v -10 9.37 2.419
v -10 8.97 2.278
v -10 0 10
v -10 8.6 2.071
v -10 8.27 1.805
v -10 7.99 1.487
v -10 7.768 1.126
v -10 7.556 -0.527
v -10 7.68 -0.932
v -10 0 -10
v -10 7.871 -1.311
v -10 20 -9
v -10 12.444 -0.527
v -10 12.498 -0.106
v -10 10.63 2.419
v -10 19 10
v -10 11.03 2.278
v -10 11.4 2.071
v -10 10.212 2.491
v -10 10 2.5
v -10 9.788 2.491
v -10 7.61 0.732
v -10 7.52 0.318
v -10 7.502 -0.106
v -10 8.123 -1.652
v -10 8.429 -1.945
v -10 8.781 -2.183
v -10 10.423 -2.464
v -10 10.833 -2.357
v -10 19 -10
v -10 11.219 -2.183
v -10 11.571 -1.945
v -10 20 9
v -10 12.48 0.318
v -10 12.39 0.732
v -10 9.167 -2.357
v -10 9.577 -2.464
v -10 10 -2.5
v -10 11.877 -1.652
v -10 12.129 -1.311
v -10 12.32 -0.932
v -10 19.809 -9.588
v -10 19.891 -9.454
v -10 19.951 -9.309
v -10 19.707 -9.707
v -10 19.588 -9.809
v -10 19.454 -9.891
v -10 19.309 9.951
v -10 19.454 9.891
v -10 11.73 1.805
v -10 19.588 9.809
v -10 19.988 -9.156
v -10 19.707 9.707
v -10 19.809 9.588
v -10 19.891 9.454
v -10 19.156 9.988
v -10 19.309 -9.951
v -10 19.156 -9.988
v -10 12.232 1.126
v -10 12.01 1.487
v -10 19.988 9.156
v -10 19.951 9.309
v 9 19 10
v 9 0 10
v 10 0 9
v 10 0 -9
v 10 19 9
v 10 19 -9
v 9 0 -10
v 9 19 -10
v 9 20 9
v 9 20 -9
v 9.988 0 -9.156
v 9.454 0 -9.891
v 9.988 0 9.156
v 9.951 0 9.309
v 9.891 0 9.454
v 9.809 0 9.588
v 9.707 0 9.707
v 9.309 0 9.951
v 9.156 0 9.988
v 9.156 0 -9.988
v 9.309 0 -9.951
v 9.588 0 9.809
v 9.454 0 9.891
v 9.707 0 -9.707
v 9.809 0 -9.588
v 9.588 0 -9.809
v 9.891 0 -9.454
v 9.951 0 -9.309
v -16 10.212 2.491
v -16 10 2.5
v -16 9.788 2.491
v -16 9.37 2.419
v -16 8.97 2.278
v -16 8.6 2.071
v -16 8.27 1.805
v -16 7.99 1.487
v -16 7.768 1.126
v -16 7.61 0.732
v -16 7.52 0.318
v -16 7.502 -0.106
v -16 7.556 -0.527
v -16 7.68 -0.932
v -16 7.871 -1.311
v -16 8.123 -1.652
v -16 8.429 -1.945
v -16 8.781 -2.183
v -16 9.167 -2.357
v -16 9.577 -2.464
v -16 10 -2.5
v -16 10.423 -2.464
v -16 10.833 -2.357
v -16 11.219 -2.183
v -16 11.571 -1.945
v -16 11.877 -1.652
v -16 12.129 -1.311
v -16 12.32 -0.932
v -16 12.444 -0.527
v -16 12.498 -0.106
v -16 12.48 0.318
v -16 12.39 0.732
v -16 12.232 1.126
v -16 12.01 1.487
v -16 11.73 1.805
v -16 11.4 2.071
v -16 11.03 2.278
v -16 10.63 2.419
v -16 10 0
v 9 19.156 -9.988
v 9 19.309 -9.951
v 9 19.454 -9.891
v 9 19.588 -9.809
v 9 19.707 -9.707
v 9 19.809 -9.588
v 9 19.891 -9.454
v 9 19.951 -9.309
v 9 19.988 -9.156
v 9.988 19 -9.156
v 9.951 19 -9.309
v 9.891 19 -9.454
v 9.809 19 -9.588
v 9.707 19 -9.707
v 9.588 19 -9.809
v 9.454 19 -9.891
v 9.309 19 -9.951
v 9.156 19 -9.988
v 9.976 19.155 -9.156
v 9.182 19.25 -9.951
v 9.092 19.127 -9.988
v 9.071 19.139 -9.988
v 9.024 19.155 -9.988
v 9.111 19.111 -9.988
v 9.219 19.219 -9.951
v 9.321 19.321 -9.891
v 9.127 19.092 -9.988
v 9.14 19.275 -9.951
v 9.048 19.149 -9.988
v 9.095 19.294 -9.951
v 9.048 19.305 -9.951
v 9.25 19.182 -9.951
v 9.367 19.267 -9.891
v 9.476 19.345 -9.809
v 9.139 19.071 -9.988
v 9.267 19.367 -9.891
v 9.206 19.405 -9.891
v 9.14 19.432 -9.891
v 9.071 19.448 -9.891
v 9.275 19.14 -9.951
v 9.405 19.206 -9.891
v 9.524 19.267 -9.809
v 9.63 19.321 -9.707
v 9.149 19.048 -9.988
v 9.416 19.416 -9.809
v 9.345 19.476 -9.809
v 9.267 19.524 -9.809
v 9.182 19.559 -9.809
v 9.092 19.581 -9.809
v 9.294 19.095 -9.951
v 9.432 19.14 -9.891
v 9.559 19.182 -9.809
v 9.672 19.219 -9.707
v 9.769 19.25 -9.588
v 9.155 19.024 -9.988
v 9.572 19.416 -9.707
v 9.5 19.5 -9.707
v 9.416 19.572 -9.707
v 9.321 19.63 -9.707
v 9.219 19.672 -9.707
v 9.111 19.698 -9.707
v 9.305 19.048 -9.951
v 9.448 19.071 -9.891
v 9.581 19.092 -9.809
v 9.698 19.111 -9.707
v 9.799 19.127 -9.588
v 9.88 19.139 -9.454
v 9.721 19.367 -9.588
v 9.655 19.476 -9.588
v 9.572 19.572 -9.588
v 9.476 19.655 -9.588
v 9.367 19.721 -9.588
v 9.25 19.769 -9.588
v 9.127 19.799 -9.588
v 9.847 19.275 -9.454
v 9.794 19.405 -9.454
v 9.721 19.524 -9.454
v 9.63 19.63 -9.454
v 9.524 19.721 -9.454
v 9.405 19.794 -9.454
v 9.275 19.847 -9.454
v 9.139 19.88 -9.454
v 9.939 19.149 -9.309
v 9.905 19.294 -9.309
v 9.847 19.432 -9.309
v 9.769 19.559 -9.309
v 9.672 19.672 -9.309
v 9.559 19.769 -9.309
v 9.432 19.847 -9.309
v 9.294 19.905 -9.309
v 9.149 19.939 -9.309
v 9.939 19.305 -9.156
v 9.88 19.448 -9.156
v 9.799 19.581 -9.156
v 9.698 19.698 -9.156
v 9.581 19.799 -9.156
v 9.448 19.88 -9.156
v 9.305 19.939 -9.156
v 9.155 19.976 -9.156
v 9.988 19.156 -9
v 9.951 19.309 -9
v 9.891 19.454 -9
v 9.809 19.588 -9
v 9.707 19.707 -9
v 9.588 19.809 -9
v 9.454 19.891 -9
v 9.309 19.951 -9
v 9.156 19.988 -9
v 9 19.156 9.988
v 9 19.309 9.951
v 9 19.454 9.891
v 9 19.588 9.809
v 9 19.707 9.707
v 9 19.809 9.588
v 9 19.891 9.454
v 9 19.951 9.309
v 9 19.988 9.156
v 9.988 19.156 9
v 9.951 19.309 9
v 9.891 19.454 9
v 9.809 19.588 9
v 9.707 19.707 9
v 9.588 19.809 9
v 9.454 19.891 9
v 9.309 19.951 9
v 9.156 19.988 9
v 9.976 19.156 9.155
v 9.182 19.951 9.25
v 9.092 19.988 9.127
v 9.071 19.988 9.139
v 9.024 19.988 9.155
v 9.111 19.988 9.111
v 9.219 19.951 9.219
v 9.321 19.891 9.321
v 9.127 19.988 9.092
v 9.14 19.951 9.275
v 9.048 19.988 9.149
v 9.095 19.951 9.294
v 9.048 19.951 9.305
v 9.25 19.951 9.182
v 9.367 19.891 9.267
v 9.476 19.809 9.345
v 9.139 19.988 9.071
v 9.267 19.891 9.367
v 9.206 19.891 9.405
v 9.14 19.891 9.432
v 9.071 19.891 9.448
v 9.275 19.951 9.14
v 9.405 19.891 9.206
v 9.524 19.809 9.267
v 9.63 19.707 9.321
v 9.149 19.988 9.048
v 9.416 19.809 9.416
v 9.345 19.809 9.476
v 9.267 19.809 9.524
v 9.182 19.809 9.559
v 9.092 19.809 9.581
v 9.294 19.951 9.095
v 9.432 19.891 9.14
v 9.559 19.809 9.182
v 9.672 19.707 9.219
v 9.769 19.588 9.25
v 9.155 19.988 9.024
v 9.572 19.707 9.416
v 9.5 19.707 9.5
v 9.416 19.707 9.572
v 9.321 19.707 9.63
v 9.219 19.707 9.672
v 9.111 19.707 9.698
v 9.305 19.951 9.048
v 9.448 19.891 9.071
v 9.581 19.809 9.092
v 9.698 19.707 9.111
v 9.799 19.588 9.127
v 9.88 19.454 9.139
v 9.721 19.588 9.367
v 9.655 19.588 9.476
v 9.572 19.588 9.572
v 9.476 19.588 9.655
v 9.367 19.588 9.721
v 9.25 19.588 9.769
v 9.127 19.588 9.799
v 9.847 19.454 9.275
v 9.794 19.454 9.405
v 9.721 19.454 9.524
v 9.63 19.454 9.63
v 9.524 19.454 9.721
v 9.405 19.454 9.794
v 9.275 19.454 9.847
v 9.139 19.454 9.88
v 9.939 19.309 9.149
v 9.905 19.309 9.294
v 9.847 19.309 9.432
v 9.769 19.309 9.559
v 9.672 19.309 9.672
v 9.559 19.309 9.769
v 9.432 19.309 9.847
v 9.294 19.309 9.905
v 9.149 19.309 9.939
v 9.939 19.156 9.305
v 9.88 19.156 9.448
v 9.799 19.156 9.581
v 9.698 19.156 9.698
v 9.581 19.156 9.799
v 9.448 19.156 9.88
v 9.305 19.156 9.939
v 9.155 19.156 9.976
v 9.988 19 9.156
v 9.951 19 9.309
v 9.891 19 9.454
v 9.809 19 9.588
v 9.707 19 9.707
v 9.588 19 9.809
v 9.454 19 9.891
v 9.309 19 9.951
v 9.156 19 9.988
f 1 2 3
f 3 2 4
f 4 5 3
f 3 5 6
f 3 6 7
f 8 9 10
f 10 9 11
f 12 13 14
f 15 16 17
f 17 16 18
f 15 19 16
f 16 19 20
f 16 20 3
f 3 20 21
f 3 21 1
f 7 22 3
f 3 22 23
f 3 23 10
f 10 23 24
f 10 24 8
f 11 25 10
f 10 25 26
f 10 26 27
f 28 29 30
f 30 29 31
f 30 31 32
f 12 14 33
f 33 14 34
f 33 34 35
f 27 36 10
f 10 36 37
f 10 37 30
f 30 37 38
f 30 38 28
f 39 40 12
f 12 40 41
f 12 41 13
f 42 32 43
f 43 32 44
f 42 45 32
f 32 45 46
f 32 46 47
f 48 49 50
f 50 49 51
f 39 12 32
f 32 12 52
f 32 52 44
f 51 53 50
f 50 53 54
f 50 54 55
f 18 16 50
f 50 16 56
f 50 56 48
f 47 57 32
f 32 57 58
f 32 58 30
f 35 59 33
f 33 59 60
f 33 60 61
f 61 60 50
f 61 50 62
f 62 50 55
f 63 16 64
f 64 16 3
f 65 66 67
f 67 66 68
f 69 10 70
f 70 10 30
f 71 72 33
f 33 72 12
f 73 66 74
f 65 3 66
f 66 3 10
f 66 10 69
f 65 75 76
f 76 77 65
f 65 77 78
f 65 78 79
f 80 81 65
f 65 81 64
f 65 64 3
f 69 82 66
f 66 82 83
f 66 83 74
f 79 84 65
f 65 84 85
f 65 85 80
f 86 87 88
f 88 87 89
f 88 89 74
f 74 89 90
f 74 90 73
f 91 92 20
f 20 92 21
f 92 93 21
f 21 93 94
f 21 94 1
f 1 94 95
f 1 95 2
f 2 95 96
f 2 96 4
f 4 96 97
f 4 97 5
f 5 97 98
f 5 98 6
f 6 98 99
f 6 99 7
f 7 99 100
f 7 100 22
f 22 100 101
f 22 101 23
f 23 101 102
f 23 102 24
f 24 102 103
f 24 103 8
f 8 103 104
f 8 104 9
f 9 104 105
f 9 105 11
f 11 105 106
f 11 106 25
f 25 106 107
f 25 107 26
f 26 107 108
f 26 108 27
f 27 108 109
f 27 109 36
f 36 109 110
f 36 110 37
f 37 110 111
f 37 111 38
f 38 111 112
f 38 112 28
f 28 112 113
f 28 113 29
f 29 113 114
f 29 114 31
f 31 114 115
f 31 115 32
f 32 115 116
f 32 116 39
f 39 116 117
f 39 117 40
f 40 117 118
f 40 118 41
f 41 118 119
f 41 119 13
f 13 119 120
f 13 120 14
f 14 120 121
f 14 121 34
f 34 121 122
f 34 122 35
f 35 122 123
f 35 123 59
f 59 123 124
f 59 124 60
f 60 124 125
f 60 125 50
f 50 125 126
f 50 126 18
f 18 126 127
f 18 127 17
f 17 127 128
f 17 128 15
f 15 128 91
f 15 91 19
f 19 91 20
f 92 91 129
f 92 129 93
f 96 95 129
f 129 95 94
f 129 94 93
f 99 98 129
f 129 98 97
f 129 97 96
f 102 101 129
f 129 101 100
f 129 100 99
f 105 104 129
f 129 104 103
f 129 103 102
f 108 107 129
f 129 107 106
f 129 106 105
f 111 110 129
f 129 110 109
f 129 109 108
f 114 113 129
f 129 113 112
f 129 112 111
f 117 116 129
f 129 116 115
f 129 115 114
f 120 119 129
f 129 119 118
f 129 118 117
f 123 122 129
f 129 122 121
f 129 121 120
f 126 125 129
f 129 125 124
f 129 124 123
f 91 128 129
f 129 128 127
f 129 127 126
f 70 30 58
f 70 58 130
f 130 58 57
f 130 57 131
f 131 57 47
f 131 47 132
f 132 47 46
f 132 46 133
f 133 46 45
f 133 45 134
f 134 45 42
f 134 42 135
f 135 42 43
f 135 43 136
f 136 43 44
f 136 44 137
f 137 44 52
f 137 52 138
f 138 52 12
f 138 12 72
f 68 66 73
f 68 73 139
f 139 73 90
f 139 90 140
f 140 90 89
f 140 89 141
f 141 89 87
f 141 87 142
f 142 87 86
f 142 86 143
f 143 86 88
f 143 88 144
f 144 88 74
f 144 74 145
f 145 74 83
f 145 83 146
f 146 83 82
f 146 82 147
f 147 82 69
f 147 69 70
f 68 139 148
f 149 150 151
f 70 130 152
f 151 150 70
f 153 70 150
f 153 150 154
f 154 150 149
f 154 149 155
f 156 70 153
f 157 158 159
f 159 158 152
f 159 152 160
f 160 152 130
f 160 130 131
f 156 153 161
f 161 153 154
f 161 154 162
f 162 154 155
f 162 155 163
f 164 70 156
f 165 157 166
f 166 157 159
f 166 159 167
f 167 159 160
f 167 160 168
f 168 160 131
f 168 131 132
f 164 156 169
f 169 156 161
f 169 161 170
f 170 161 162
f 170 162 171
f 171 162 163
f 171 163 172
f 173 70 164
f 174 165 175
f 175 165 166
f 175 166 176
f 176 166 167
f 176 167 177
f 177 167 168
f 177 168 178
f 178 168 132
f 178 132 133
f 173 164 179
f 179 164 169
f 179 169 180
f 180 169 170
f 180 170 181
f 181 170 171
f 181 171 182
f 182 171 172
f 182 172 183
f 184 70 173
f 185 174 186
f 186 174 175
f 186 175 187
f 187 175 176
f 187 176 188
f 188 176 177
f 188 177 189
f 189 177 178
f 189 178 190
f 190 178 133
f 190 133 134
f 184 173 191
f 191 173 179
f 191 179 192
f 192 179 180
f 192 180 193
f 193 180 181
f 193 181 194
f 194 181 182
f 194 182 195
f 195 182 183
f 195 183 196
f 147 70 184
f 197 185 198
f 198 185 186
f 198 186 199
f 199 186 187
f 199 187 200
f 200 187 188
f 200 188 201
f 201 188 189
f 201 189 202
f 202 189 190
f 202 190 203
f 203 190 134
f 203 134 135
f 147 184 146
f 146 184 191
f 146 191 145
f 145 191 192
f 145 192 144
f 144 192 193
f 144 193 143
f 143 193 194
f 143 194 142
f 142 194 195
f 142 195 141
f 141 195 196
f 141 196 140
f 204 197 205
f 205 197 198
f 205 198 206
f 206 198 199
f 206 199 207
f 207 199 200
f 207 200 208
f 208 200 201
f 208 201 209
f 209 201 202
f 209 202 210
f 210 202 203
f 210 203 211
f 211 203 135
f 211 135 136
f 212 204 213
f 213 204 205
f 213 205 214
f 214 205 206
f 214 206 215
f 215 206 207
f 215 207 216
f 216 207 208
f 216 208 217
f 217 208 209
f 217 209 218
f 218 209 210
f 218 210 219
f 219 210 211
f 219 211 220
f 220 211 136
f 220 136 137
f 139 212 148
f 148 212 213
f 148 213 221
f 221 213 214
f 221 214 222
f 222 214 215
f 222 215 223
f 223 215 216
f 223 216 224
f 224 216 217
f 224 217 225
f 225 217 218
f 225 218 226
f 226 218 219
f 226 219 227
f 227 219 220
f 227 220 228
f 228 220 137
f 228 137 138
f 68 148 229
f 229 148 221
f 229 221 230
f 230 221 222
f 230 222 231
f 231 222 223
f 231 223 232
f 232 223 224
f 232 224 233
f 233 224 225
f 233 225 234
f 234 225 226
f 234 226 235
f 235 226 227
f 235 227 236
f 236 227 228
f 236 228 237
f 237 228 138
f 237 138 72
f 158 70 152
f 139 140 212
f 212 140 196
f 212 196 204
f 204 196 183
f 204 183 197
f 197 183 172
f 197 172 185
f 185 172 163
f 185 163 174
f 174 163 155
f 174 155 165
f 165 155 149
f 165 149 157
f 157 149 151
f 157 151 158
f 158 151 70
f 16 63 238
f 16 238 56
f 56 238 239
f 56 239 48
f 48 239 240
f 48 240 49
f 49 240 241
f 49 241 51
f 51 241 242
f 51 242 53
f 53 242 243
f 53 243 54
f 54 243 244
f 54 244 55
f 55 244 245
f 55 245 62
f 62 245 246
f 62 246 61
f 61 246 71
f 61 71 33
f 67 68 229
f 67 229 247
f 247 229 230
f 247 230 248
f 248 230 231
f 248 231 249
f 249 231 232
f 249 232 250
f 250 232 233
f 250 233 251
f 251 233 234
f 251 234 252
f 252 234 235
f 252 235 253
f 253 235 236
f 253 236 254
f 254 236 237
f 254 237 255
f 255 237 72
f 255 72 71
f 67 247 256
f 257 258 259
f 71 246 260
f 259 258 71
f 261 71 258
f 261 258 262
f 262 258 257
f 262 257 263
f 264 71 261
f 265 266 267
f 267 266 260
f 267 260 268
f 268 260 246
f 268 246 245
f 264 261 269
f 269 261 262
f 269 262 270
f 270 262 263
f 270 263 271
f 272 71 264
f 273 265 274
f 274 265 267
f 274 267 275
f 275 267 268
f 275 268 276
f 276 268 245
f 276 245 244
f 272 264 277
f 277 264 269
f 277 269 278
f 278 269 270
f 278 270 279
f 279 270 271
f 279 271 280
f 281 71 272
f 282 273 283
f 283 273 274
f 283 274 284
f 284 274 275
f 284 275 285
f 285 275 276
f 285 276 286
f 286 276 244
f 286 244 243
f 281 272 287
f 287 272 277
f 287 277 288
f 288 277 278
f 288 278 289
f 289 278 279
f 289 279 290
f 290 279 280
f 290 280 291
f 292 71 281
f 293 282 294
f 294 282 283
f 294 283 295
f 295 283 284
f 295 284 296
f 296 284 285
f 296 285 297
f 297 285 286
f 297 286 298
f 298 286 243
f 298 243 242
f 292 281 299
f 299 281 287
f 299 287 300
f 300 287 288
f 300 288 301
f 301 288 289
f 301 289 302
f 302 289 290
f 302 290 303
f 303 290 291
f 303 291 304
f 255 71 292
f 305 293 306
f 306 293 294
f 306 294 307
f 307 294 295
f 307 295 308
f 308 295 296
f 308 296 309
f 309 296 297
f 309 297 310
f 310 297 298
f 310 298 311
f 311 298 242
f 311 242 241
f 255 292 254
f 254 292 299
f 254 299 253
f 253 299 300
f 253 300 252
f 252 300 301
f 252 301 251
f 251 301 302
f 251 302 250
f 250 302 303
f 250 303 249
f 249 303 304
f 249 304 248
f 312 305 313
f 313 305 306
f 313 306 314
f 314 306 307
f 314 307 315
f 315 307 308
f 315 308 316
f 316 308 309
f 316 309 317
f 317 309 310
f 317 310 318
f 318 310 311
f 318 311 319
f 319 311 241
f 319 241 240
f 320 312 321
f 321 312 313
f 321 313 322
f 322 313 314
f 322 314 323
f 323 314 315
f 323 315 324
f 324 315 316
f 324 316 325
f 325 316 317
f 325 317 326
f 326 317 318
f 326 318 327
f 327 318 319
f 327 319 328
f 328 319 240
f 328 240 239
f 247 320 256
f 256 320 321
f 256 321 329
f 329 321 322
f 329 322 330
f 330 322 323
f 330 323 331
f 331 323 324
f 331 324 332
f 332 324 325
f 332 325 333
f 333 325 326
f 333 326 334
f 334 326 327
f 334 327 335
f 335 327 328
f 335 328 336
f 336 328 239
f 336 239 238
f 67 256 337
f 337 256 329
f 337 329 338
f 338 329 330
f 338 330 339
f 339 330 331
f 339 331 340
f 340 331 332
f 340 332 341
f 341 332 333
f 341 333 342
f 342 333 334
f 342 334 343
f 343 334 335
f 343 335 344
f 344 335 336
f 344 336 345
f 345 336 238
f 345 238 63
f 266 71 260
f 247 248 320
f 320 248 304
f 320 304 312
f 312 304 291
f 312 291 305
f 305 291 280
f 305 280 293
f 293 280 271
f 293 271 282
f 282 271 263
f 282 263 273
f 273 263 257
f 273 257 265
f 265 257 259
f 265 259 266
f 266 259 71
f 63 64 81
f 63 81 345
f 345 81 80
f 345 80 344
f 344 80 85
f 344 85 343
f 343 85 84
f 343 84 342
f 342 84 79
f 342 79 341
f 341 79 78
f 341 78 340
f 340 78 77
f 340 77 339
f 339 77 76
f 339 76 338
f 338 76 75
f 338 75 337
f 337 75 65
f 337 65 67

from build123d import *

# Parameters (mm, degrees)
SKETCH1_W           = 20
SKETCH1_H           = 20
BOSS_EXTRUDE1_DEPTH = 20
SKETCH2_R           = 2.5
BOSS_EXTRUDE2_DEPTH = 6
FILLET1_R           = 1


with BuildPart() as part:
    # Sketch1 → Boss-Extrude1 (new body)
    with BuildSketch(Plane(origin=(0, 0, 0), x_dir=(1, 0, 0), z_dir=(0, 1, 0))):
        Rectangle(SKETCH1_W, SKETCH1_H)
    extrude(amount=BOSS_EXTRUDE1_DEPTH)

    # Sketch2 → Boss-Extrude2 (add)
    with BuildSketch(Plane.ZY.offset(10)):
        with Locations((0, 10)):
            Circle(SKETCH2_R)
    extrude(amount=BOSS_EXTRUDE2_DEPTH)

    # Fillet1
    fillet1_edges = [part.edges().sort_by_distance(p)[0] for p in [
        (10, 20, 0),
        (0, 20, -10),
        (10, 10, -10),
        (10, 10, 10),
        (0, 20, 10),
    ]]
    fillet(fillet1_edges, radius=FILLET1_R)


solid = part.part
